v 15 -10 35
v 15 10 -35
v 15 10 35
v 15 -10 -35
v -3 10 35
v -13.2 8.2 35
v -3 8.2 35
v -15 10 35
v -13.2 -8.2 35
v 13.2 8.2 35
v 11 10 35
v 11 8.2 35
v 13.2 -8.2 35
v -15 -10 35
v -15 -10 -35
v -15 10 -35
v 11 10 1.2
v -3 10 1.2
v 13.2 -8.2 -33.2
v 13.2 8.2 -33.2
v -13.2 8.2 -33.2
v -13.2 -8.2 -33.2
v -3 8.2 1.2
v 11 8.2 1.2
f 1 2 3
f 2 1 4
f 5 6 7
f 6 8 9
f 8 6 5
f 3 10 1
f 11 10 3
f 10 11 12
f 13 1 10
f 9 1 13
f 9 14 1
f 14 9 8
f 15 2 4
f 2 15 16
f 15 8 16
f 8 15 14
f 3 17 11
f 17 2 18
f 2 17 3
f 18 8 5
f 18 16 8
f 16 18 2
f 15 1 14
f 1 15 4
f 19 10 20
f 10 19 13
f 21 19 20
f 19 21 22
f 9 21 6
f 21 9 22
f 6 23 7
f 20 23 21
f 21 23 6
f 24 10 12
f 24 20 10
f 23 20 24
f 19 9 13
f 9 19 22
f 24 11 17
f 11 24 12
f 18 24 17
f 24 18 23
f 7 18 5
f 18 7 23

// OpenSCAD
socket_height=14;
socket_width=33.7;
box_width=30;
box_height=70;
box_depth=20;
wall_thickness=1.8;

difference() {
    cube([box_width,box_depth,box_height],center=true);
    
    translate([0,0,wall_thickness]) {
        cube([box_width-wall_thickness*2,box_depth-wall_thickness*2,box_height],center=true);
    }
    translate([4,box_depth/2,box_height/2-socket_width/2]) {
        cube([socket_height,10,socket_width+0.2],center=true);
    }    
}
